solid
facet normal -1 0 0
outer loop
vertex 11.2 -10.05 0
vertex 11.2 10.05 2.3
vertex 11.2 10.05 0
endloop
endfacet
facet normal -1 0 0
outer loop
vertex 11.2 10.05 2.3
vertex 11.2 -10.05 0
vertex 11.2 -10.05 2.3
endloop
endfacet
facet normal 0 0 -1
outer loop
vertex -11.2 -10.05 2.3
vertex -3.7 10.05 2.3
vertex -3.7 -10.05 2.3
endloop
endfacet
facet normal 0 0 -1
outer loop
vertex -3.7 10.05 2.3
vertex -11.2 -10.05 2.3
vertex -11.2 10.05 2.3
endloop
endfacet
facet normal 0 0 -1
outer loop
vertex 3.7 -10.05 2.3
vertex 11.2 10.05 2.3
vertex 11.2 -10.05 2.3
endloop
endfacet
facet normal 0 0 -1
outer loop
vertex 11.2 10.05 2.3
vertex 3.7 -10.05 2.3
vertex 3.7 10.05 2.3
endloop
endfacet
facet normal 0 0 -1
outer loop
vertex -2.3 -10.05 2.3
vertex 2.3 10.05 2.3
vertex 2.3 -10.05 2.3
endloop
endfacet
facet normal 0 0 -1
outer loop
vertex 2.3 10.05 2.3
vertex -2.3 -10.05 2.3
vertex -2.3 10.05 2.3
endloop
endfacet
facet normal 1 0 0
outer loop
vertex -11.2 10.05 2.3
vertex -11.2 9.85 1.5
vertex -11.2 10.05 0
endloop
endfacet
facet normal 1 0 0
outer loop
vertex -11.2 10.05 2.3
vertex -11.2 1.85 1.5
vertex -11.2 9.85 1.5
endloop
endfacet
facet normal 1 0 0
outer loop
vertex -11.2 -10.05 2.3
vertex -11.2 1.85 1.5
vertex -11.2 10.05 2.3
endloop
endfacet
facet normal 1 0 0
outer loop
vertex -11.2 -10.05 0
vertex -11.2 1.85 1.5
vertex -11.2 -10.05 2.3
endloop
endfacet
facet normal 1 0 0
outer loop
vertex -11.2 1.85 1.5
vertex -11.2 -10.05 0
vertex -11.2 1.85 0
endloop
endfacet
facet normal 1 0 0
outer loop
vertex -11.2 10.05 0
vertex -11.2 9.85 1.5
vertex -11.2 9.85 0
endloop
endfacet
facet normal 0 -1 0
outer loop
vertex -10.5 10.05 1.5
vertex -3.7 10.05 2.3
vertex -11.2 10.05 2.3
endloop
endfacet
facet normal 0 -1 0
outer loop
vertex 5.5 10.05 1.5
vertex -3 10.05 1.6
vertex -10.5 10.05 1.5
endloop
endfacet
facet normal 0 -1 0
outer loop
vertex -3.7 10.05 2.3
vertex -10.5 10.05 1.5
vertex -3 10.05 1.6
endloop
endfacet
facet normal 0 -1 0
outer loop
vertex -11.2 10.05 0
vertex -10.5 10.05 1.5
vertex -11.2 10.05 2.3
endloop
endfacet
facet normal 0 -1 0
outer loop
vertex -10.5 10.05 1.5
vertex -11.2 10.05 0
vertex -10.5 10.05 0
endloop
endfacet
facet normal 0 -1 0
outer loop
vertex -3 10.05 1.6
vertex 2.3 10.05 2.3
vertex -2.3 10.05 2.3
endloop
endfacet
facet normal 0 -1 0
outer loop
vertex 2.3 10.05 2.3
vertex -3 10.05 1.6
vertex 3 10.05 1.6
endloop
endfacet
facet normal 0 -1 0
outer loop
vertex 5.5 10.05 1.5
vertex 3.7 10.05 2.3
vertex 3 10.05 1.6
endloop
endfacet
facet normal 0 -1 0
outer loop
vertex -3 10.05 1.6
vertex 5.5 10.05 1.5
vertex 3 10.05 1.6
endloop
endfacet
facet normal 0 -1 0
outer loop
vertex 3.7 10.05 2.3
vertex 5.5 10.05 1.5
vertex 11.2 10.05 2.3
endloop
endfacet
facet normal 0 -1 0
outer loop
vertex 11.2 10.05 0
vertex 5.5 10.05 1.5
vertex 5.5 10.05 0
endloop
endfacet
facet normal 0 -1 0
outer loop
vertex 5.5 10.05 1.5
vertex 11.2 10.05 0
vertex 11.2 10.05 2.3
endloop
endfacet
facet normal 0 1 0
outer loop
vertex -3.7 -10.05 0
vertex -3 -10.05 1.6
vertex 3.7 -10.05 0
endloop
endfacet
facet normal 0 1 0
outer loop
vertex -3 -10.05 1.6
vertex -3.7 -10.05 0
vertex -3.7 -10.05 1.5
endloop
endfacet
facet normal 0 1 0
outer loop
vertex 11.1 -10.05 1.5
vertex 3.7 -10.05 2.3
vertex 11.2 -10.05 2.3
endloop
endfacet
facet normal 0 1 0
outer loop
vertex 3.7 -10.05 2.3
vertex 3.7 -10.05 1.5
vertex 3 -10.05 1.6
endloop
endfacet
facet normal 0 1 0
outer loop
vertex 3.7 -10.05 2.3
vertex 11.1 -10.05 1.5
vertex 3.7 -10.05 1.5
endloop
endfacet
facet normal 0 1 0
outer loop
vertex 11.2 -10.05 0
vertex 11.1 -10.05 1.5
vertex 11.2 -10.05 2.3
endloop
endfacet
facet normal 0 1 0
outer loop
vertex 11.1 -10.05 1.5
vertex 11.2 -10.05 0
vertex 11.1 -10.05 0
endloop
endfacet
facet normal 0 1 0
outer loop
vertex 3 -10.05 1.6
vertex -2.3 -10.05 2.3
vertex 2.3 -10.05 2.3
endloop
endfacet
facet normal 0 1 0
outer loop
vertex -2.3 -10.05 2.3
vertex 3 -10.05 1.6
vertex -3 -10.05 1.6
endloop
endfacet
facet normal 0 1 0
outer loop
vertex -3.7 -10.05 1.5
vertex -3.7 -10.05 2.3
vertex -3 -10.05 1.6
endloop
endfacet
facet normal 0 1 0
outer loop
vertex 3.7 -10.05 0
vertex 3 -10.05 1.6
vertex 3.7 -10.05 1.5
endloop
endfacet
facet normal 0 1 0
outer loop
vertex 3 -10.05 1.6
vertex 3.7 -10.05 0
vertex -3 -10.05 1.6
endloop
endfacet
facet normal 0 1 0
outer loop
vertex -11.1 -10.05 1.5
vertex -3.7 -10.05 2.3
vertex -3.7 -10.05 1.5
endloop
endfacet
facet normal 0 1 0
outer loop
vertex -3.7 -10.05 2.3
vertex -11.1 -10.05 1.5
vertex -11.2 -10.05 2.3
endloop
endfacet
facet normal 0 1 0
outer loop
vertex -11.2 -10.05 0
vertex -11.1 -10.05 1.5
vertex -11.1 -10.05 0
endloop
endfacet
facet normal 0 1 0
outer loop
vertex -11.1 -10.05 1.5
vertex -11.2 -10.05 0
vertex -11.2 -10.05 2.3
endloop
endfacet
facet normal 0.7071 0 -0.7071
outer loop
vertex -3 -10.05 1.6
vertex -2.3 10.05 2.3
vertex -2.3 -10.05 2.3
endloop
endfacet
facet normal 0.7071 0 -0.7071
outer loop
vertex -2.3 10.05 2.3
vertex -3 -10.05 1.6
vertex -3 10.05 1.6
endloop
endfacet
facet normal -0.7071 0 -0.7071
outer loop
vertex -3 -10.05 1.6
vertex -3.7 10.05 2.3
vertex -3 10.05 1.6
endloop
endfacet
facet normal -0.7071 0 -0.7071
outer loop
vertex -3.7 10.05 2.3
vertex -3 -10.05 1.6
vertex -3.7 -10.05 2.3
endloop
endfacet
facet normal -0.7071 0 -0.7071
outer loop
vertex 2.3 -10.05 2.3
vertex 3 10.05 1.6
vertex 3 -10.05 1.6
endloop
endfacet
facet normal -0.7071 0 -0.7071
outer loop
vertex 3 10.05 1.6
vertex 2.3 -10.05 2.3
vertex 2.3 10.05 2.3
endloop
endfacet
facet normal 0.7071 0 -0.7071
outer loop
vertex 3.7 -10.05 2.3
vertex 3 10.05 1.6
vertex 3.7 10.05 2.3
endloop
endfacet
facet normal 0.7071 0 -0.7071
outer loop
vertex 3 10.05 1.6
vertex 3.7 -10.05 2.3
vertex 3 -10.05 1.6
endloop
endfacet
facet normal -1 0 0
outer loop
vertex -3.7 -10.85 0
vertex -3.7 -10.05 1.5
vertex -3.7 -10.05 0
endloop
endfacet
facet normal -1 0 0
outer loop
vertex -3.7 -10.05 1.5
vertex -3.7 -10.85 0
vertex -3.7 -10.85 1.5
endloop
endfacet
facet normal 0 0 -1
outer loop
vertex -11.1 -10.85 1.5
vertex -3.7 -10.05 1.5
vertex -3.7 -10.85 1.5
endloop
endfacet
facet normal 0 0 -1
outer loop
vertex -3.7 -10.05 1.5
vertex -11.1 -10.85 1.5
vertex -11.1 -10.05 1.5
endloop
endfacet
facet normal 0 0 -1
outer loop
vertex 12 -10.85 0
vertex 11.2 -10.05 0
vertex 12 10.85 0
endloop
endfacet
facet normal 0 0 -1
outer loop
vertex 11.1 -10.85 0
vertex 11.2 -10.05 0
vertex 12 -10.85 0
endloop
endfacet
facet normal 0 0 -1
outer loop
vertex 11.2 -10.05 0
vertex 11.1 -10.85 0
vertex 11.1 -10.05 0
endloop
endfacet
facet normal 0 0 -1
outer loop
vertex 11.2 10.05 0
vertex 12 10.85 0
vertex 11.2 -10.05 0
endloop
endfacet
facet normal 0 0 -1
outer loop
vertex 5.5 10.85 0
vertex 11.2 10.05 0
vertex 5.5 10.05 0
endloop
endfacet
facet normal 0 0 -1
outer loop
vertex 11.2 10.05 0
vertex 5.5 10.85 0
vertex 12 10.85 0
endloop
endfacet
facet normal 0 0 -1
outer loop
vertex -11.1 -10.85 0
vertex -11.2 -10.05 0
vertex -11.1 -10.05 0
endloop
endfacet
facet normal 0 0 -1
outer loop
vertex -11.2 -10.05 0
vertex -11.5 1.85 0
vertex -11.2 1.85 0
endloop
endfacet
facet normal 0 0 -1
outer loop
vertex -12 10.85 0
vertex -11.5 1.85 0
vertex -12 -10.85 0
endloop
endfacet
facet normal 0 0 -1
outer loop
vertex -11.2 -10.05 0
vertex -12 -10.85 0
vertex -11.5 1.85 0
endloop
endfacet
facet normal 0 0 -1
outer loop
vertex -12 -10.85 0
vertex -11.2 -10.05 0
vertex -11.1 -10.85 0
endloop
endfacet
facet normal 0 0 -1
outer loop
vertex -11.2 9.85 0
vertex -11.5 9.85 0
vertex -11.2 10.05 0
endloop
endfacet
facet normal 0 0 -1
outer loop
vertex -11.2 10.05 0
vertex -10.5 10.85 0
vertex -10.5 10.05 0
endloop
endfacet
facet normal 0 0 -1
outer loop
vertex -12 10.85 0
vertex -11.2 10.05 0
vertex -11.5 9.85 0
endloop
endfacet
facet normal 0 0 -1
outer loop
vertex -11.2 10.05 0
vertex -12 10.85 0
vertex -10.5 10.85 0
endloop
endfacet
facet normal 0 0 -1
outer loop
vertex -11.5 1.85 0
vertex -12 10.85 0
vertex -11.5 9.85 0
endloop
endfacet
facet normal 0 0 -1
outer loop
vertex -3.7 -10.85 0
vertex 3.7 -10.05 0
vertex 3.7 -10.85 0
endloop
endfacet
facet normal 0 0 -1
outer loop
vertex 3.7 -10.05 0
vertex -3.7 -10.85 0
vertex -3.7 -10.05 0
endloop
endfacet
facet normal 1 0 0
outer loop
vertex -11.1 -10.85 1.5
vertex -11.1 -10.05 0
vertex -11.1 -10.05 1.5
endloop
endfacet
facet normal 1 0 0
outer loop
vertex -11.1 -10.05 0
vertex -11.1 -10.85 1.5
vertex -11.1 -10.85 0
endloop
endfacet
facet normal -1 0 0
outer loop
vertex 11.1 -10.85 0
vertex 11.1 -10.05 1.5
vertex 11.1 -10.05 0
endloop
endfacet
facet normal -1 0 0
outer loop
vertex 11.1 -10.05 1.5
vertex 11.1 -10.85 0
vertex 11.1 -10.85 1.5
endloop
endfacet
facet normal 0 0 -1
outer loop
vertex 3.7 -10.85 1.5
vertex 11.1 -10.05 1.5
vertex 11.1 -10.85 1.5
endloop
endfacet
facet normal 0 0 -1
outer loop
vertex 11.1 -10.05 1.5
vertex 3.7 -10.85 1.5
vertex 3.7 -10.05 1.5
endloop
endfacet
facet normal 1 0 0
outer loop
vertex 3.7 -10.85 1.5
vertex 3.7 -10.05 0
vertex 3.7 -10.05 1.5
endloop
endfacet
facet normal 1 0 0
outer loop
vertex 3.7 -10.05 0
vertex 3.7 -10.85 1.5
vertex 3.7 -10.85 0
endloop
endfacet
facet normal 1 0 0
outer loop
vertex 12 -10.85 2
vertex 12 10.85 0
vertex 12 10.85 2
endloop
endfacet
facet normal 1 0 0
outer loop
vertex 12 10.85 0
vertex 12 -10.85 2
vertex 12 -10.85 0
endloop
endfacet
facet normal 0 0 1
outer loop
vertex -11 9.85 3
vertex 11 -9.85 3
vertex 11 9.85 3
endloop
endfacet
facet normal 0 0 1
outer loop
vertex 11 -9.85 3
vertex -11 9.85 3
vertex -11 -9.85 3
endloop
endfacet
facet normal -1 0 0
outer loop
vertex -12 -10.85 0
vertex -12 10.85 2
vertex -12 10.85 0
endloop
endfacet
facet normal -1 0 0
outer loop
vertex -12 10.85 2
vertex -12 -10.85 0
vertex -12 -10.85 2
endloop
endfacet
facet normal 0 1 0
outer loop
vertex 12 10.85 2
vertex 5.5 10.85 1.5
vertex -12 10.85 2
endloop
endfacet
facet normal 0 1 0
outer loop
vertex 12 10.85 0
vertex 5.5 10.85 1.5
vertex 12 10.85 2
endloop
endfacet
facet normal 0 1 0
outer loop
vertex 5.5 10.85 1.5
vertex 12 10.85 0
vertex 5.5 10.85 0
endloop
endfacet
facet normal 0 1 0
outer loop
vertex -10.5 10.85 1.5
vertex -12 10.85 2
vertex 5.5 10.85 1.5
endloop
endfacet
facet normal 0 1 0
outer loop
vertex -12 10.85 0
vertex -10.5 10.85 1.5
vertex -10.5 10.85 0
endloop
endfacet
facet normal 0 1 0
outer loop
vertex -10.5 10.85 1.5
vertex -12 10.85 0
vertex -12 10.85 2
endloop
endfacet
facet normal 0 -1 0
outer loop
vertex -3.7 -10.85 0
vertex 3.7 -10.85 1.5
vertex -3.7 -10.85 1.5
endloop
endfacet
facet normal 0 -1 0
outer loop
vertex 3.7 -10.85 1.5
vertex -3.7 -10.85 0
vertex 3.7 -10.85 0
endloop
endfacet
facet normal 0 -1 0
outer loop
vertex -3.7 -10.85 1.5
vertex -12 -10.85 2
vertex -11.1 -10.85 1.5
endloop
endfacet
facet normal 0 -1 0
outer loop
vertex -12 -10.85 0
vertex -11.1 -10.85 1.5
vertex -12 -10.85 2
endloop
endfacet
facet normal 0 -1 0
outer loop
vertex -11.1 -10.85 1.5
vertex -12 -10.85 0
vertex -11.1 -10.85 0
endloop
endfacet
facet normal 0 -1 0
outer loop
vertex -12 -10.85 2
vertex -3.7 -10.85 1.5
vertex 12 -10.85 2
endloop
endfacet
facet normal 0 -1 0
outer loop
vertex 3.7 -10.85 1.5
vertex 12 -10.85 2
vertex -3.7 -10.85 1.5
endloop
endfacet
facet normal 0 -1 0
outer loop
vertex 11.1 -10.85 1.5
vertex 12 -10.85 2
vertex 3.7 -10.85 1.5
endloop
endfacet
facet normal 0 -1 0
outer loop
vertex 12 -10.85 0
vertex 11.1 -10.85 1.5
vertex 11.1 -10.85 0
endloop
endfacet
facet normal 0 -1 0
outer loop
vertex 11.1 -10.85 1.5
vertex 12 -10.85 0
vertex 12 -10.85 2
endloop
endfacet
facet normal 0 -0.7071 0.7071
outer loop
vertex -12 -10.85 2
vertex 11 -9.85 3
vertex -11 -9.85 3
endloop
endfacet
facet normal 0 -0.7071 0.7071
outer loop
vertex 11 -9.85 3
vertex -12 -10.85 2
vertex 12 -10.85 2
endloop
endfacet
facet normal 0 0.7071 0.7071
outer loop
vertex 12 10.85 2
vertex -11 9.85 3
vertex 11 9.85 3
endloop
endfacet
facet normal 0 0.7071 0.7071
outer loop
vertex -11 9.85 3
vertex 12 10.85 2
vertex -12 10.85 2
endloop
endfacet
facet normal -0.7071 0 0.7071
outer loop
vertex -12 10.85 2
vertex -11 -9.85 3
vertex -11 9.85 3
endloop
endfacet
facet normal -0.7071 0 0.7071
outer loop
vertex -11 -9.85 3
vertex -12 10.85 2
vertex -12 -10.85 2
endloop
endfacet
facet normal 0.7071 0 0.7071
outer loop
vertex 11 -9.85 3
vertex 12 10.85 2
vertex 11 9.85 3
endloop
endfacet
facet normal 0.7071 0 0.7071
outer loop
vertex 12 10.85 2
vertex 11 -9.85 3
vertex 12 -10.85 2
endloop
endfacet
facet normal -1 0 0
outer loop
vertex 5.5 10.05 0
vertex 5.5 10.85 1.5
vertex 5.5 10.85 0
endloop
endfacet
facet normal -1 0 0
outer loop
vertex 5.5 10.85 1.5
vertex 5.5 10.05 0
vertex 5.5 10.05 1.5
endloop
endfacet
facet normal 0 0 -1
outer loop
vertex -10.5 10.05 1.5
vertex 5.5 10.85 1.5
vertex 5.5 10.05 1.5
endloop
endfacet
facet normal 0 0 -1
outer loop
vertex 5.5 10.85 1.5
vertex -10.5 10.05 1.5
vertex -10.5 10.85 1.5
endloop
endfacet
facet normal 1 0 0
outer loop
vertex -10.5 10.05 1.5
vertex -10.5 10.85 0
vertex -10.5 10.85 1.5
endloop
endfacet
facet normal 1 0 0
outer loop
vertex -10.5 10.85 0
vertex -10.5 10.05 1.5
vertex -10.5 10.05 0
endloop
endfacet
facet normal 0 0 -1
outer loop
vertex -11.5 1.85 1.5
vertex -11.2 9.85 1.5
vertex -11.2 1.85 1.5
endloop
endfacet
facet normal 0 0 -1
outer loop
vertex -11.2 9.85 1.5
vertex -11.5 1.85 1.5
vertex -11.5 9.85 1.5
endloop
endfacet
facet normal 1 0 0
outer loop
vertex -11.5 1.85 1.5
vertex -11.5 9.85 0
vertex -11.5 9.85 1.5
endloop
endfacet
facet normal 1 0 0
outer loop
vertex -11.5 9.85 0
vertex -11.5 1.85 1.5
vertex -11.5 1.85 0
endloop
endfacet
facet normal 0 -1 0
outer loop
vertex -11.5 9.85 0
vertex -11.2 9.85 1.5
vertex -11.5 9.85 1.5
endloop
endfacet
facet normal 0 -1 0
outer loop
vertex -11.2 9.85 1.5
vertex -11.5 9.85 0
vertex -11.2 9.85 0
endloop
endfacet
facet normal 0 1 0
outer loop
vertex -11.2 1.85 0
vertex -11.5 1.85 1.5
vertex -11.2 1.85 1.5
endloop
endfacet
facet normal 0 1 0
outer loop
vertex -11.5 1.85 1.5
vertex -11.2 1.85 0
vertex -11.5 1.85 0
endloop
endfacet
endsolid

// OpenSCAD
module TFSIK_rf_shield(){
    width = 24;
    length = 21.7;
    depth = 3;
    wall = 0.8;
    
    roof_th = 0.7;

    difference(){
        translate([0, 0, depth/2]) cube([width, length, depth], center=true);
        
        difference(){
            translate([0, 0, depth/2-roof_th]) cube([width-2*wall, length-2*wall, depth], center=true);
        
        // vystuzeni
        
        //translate([0, length/2*0, depth-roof_th]) rotate([0, 90, 0]) cylinder(d=1, h=100, $fn=4, center=true);
        
        translate([width/2*0-3, 0, depth-roof_th]) rotate([90, 0, 0]) cylinder(d=1.4, h=length, $fn=4, center=true);
        translate([width/2*0+3, 0, depth-roof_th]) rotate([90, 0, 0]) cylinder(d=1.4, h=length, $fn=4, center=true);
        
        }
        
        //zkosene hrany
        translate([0, -length/2, depth]) rotate([0, 90, 0]) cylinder(d=2, h=100, $fn=4, center=true);
        translate([0, length/2, depth]) rotate([0, 90, 0]) cylinder(d=2, h=100, $fn=4, center=true);
        translate([-width/2, 0, depth]) rotate([90, 0, 0]) cylinder(d=2, h=100, $fn=4, center=true);
        translate([width/2, 0, depth]) rotate([90, 0, 0]) cylinder(d=2, h=100, $fn=4, center=true);
        
        
        // SMA connectors
        sma_dist = 15.2-0.4;
        sma_height = 1.5;
        sma_width = 7.4;
        sma_depth = 4;
        
        for(x=[-0.5*sma_dist, 0.5*sma_dist]) translate([x, -length/2, sma_height/2]) cube([sma_width, sma_depth*2, sma_height], center=true);
        
        // civky v zadni casti
        translate([-3.5+1, length/2, 1.5/2]) cube([16, 5, 1.5], center=true);
        
        // soucastky 
        translate([-4.5, length/2-4-1, 1.5/2]) cube([14, 8, 1.5], center=true);
        
    }
    
    



}


TFSIK_rf_shield();
